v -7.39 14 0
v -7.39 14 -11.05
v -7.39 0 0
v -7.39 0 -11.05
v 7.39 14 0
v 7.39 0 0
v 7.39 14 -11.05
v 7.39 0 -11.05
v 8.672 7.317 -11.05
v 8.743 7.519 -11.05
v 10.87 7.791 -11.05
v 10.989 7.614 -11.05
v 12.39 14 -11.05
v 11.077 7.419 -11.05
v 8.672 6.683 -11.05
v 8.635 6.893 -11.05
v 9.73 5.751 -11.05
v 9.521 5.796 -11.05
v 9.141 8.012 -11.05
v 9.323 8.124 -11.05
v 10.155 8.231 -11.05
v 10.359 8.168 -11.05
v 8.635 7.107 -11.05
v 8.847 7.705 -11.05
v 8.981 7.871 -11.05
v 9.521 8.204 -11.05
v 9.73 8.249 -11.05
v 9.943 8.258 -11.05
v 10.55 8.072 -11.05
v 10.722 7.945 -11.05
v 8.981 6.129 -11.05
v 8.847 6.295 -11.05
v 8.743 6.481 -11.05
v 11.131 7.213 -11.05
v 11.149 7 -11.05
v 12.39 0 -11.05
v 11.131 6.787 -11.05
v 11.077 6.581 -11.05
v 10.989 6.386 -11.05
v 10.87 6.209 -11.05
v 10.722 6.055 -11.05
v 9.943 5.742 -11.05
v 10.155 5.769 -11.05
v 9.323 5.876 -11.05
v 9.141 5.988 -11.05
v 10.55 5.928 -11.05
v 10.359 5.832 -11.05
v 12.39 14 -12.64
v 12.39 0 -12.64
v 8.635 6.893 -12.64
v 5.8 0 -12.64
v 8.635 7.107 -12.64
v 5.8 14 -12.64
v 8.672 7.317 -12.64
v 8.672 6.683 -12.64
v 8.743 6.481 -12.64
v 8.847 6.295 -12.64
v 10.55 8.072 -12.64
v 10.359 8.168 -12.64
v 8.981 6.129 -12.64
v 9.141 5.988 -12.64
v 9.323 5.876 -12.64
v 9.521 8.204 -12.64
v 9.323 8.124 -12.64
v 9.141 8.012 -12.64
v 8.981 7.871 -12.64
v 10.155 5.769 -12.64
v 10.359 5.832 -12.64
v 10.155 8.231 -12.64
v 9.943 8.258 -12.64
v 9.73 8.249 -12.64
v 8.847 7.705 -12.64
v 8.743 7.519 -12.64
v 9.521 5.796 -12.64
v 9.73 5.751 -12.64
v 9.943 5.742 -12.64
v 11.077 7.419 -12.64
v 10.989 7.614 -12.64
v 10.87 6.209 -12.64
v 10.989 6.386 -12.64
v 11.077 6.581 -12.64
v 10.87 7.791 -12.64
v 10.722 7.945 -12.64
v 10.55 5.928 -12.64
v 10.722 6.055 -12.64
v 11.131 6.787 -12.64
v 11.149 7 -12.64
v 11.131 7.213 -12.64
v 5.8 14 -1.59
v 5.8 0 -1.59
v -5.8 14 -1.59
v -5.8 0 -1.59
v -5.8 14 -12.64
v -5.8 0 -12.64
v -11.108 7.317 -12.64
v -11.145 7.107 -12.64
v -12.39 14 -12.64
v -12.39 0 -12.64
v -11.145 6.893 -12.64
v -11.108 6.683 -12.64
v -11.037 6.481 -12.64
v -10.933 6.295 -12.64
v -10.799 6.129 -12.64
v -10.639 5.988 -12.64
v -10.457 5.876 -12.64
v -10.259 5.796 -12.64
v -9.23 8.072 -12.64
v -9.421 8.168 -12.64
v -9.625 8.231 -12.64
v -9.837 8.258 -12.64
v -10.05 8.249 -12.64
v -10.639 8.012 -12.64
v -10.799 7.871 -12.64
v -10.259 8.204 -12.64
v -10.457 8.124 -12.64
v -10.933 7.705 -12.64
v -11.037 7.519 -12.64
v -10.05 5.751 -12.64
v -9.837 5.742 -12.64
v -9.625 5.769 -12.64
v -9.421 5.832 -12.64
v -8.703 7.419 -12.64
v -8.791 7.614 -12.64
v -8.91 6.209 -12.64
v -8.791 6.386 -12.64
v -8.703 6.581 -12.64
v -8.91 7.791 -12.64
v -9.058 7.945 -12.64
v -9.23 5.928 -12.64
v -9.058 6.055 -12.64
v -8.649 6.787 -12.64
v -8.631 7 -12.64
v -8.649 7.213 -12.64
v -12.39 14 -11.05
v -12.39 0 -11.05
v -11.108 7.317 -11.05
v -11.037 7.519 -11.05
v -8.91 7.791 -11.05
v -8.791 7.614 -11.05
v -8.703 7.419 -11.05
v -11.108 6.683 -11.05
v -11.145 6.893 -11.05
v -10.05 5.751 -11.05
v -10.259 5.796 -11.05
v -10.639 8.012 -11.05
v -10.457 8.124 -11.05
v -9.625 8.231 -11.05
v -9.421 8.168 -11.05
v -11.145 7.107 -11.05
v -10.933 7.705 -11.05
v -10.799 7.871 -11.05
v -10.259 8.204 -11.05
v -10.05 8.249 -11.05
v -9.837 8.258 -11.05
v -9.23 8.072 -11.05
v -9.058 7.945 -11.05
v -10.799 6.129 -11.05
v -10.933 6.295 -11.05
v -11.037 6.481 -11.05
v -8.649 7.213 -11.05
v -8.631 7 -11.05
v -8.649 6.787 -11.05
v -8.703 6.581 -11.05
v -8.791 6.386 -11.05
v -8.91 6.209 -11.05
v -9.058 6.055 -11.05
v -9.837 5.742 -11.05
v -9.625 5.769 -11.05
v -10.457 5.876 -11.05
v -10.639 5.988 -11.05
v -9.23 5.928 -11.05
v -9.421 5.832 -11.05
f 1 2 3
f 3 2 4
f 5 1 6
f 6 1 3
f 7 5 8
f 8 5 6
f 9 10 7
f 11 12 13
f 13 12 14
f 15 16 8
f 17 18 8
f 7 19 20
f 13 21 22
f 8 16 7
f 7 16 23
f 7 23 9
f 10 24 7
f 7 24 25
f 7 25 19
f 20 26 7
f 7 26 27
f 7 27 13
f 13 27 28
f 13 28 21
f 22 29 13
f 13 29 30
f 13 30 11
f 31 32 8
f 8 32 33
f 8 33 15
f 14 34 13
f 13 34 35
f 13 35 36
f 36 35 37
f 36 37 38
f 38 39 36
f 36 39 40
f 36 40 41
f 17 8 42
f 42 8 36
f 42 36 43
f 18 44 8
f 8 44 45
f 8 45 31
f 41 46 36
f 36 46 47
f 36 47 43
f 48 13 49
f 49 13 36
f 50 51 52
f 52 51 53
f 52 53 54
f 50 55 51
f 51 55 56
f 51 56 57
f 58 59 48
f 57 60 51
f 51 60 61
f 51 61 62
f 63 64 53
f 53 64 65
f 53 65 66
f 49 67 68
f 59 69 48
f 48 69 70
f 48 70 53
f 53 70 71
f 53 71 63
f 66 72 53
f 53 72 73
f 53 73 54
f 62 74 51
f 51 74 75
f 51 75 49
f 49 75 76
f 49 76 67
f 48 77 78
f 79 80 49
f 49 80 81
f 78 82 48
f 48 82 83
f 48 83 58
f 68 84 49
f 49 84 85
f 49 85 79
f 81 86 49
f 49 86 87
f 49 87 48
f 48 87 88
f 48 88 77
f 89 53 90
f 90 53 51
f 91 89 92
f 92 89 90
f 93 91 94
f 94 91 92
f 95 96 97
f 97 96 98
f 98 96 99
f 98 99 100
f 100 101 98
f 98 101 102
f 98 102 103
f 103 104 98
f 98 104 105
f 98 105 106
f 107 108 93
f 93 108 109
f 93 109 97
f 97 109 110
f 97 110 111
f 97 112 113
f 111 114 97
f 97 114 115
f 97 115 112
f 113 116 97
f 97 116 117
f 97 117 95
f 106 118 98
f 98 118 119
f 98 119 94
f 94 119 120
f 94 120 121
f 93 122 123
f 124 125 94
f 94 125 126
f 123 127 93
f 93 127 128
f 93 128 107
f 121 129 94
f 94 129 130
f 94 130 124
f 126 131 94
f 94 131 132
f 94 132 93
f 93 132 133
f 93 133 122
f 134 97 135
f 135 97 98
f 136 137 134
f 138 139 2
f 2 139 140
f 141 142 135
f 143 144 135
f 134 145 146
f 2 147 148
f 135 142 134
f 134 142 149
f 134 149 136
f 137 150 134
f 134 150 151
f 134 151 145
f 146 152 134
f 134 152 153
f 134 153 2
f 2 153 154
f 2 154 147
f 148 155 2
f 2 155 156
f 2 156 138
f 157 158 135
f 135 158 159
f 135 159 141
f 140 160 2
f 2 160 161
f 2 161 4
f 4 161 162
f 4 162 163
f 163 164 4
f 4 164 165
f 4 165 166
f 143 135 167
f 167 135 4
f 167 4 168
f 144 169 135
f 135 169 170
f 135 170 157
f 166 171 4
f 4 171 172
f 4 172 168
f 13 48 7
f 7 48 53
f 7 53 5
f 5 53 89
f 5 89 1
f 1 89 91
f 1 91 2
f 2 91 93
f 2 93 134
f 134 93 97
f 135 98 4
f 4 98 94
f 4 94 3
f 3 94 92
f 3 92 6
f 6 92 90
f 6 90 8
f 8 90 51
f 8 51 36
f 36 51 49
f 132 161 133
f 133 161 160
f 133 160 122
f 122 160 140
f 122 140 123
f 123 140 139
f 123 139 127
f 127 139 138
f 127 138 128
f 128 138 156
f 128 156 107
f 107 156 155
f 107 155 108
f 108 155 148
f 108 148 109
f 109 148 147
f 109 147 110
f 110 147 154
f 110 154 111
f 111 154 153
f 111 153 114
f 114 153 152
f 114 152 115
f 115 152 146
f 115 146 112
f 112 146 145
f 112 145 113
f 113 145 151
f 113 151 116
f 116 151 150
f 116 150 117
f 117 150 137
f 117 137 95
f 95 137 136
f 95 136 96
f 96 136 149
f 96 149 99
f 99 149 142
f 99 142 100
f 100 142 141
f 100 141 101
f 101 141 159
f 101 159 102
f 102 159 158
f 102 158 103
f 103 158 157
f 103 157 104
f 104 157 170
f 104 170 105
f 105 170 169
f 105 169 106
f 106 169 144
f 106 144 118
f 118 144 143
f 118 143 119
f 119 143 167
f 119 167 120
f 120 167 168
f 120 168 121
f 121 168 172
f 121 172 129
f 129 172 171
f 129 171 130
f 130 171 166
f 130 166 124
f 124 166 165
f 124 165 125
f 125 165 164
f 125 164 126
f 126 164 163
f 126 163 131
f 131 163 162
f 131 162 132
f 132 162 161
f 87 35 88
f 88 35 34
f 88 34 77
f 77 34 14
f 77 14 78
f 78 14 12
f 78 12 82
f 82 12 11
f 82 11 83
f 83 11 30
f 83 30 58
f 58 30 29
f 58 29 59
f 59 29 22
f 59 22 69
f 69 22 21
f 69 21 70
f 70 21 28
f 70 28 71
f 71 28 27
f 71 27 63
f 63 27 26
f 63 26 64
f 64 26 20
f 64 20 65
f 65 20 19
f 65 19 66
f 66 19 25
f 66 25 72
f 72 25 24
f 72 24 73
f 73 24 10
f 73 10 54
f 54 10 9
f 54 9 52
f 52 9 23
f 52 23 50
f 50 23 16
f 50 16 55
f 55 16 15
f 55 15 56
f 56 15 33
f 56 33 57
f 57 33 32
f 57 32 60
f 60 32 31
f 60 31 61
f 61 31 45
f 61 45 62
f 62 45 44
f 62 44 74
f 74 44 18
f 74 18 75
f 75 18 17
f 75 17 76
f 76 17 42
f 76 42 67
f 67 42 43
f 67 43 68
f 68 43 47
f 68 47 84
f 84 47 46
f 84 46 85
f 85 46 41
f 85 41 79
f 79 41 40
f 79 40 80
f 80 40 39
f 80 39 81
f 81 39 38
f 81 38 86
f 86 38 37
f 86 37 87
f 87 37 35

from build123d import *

# Parameters (mm, degrees)
BOSS_EXTRUDE1_DEPTH = 14
SKETCH2_R           = 1.259114001
CUT_EXTRUDE1_DEPTH  = 14


with BuildPart() as part:
    # Sketch1 → Boss-Extrude1 (new body)
    with BuildSketch(Plane(origin=(0, 0, 0), x_dir=(1, 0, 0), z_dir=(0, 1, 0))):
        Polygon((-7.39, 0), (7.39, 0), (7.39, 11.05), (12.39, 11.05), (12.39, 12.64), (5.8, 12.64), (5.8, 1.59), (-5.8, 1.59), (-5.8, 12.64), (-12.39, 12.64), (-12.39, 11.05), (-7.39, 11.05), align=None)
    extrude(amount=BOSS_EXTRUDE1_DEPTH)

    # Sketch2 → Cut-Extrude1 (cut)
    with BuildSketch(Plane.XY.offset(-11.05)):
        with Locations((-9.89, 7)):
            Circle(SKETCH2_R)
        with Locations((9.89, 7)):
            Circle(SKETCH2_R)
    extrude(amount=-CUT_EXTRUDE1_DEPTH, mode=Mode.SUBTRACT)


solid = part.part
